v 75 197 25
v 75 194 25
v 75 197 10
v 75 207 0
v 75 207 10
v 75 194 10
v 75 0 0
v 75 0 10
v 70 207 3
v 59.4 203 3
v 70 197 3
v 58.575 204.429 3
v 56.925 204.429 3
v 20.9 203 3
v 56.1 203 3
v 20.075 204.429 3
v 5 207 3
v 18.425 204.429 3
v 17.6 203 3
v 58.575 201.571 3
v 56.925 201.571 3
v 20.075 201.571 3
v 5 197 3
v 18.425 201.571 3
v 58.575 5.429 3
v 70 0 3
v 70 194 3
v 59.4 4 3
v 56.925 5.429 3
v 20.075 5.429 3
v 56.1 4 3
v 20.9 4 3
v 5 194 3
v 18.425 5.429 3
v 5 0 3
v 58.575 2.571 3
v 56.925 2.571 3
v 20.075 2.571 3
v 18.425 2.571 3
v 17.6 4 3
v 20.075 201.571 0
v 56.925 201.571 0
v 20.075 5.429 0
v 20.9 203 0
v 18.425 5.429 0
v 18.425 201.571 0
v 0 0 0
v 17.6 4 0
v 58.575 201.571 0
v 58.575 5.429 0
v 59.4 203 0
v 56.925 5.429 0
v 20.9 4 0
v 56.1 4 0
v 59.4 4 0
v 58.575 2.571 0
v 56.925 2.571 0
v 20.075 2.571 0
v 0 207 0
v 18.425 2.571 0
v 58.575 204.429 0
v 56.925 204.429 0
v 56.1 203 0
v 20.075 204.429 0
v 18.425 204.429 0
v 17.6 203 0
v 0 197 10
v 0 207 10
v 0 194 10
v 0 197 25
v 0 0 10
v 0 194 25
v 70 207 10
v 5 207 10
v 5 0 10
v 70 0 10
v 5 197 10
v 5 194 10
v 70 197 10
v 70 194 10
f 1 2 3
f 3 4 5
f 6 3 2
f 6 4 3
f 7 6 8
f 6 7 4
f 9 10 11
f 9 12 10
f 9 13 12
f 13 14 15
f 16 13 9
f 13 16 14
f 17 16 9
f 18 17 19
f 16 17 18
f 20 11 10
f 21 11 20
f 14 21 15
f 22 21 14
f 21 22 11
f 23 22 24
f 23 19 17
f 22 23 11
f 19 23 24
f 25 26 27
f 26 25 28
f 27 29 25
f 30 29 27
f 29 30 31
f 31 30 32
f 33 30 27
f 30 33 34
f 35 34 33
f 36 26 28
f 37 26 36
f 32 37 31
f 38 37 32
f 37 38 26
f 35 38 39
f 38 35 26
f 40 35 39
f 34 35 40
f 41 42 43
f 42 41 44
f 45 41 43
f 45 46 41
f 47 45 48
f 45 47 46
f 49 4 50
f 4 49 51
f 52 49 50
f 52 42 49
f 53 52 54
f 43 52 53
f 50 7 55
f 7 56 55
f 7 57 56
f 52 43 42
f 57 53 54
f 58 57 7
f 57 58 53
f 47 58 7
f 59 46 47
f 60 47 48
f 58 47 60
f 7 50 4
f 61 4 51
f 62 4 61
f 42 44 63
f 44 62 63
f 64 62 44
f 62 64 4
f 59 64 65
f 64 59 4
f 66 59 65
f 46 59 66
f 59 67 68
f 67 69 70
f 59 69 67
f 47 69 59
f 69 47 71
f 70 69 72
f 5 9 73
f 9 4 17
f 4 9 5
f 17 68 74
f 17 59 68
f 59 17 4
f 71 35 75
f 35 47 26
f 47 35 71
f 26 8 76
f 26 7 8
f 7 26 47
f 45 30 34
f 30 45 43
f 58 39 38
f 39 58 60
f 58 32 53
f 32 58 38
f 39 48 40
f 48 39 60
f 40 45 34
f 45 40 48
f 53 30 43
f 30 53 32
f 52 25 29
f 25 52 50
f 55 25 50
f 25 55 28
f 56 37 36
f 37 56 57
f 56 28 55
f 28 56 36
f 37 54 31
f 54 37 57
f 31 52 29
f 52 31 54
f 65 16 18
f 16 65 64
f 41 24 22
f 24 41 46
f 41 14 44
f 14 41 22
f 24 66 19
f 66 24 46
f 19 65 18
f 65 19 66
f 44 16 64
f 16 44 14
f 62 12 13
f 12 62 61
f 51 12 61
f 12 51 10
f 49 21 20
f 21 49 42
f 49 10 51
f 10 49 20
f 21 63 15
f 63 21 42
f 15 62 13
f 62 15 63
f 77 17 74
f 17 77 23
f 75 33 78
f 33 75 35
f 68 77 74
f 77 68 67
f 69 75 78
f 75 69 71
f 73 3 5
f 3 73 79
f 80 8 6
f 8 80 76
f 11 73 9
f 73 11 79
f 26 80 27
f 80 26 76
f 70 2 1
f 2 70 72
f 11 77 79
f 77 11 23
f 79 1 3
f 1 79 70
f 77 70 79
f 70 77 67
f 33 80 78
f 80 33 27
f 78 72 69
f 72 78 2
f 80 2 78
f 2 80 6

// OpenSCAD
module open_top_box(size, wall=2, lid=false){
    // Form the dimensions of the outer box
    x2 = size[0] + wall*2;
    y2 = size[1] + wall*2;
    z2 = size[2] + wall*2;

    echo("Not building with lid");
    zWall = size[2] + wall*2;
    lid_offset = [wall, wall, wall];

    difference(){
        cube([x2,y2,z2]);
        translate(lid_offset){
            cube([size.x, size.y, zWall]);
        }       
    }
}

hdmi_x = 14;
hdmi_y = 4.5;
hdmi_z = 12;

// Want at lest 2 times the width to support
base_x = 75;

// Want at least 10mm space between them
base_y = hdmi_y*50;
base_z = 2;

offset_x = (base_x - hdmi_x)/2;
center_x = (base_x / 2) - ((hdmi_x + 4) / 2);
z_offset = 2;

/* Prototype base 
//cube([base_x, 40, .5]);

translate([0,14,0]){
    translate([center_x,2,0]){
        open_top_box(size=[hdmi_x, hdmi_y, 10]);
    }
}
/* End prototype base */


/*difference(){

// Define the base
cube([base_x, 207,3]);

    // Top Stabalizer screw hold
    translate([19.25,4,3]){
        rotate([180,0,0]){
            cylinder(4, 1.65, 1.65);
        }
    }


    // Top Stabalizer screw hold
    translate([57.75,4,3]){
        rotate([180,0,0]){
            cylinder(4, 1.65, 1.65);
        }
    }


    // Bottom Stabalizer screw hold
    translate([19.25,203,3]){
        rotate([180,0,0]){
            cylinder(4, 1.65, 1.65);
        }
    }


    // Bottom Stabalizer screw hold
    translate([57.75,203,3]){
        rotate([180,0,0]){
            cylinder(4, 1.65, 1.65);
        }
    }

}

slot_height = 85;
space_between = 35;

mount_y_offset = 25;
y_offset = mount_y_offset-14;

// top Stabalizer
translate([0, 10, 0]){
    cube([75,3,25]);
}


translate([0,mount_y_offset,z_offset]){
    // Mini-PC mount 1
    translate([center_x,2,0]){
        open_top_box(size=[hdmi_x, hdmi_y, hdmi_z], wall=2, lid=false);
    }
    // Mini-PC mount 2
    translate([center_x,2+space_between,0]){
        open_top_box(size=[hdmi_x, hdmi_y, hdmi_z], wall=2, lid=false);
    }
    // Mini-PC mount 3
    translate([center_x,2+space_between*2,0]){
        open_top_box(size=[hdmi_x, hdmi_y, hdmi_z], wall=2, lid=false);
    }

    // Mini-PC mount 4
    translate([center_x,2+space_between*3,0]){
        open_top_box(size=[hdmi_x, hdmi_y, hdmi_z], wall=2, lid=false);
    }

    // Mini-PC mount 5
    translate([center_x,2+space_between*4,0]){
        open_top_box(size=[hdmi_x, hdmi_y, hdmi_z], wall=2, lid=false);
    }
}

// 1st Mount
translate([5,y_offset,z_offset]){
    translate([5,11,0]){
        cube([16,2,slot_height]);
    }
    translate([5,27,0]){
        cube([16,2,slot_height]);
    }
    translate([5,11,0]){
        cube([2,18,slot_height]);
    }
}

// 2nd Mount
translate([5,y_offset+space_between,z_offset]){
    translate([5,11,0]){
        cube([16,2,slot_height]);
    }
    translate([5,27,0]){
        cube([16,2,slot_height]);
    }
    translate([5,11,0]){
        cube([2,18,slot_height]);
    }
}


// 3rd Mount
translate([5,y_offset+space_between*2,z_offset]){
    translate([5,11,0]){
        cube([16,2,slot_height]);
    }
    translate([5,27,0]){
        cube([16,2,slot_height]);
    }
    translate([5,11,0]){
        cube([2,18,slot_height]);
    }
}


// 4th Mount
translate([5,y_offset+space_between*3,z_offset]){
    translate([5,11,0]){
        cube([16,2,slot_height]);
    }
    translate([5,27,0]){
        cube([16,2,slot_height]);
    }
    translate([5,11,0]){
        cube([2,18,slot_height]);
    }
}


// 5th Mount
translate([5,y_offset+space_between*4,z_offset]){
    translate([5,11,0]){
        cube([16,2,slot_height]);
    }
    translate([5,27,0]){
        cube([16,2,slot_height]);
    }
    translate([5,11,0]){
        cube([2,18,slot_height]);
    }
}

// Rails for side-wall mount
cube([5,207,10]);
translate([70,0,0]){
    cube([5,207,10]);
}

// Bottom Stabalizer
translate([0, 194, 0]){
    cube([75,3,25]);
}*/

// Ethernet Side wall

difference(){

// Define the base
cube([base_x, 207,3]);

    // Top Stabalizer screw hold
    translate([19.25,4,3]){
        rotate([180,0,0]){
            cylinder(4, 1.65, 1.65);
        }
    }


    // Top Stabalizer screw hold
    translate([57.75,4,3]){
        rotate([180,0,0]){
            cylinder(4, 1.65, 1.65);
        }
    }


    // Bottom Stabalizer screw hold
    translate([19.25,203,3]){
        rotate([180,0,0]){
            cylinder(4, 1.65, 1.65);
        }
    }


    // Bottom Stabalizer screw hold
    translate([57.75,203,3]){
        rotate([180,0,0]){
            cylinder(4, 1.65, 1.65);
        }
    }

}


// Ethernet side Rails
cube([5,207,10]);
translate([70,0,0]){
    cube([5,207,10]);
}

// Bottom Stabalizer
translate([0, 194, 0]){
    cube([75,3,25]);
}


//
// Base
/*
base_thickness = 10;
base_length = 170;
rotate([90,0,0]){
difference(){
    // Base 
    translate([-5,210,-5]){
        cube([85,base_thickness,base_length]);
    }

    // Bottom Rails
    translate([0,210,0]){
        cube([75.25,base_thickness,3.25]);
    }
    translate([70,210,0]){
        cube([5.25,base_thickness,10.25]);
    }
    translate([0,210,0]){
        cube([5.25,base_thickness,10.25]);
    }

    // Top Rails
    translate([0,210,157]){
        cube([75.25,base_thickness,3.25]);
    }
    translate([70,210,150]){
        cube([5.25,base_thickness,10.25]);
    }
    translate([0,210,150]){
        cube([5.25,base_thickness,10.25]);
    }

    // Cable Gutter Slot
    /*translate([65,210,71+z_offset]){
        cube([5.25,base_thickness,35.3]);
    }

    //Top Rail
    translate([70,210,71+z_offset]){
        cube([5.25,base_thickness,5.25]);
    }

    //Bottom Rail
    translate([70,210,71+z_offset+30+.3]){
        cube([5.15,base_thickness,5.15]);
    }*/

    /* Left Stabalizer screw hold
    translate([19.25,215,0]){
        rotate([180,0,0]){
            cylinder(5, 1.65, 3.375);
        }
    }


    // Left Stabalizer screw hold
    translate([57.75,215,0]){
        rotate([180,0,0]){
            cylinder(5, 1.65, 3.375);
        }
    }

    // Right Stabalizer screw hold
    translate([19.25,215, 165]){
        rotate([180,0,0]){
            cylinder(5, 3.375, 1.65);
        }
    }

    // right Stabalizer screw hold
    translate([57.75,215,165]){
        rotate([180,0,0]){
            cylinder(5, 3.375, 1.65);
        }
    }
}

hold_x = 35;
hold_y = base_thickness + 213;
hold_z = 10.25+20.8;

// Switch holds
translate([hold_x, hold_y-1.8, hold_z]){
    rotate([90,0,0]){
        cylinder(1.8, 2.25, 2.25);
    }
}
translate([hold_x,hold_y,hold_z]){
    rotate([90,0,0]){
        cylinder(1.8, 3.9, 3.9);
    }
}

hold_offset = 102;
// Switch holds
translate([hold_x, hold_y-1.8, hold_z+hold_offset]){
    rotate([90,0,0]){
        cylinder(1.8, 2.25, 2.25);
    }
}
translate([hold_x,hold_y,hold_z+hold_offset]){
    rotate([90,0,0]){
        cylinder(1.8, 3.9, 3.9);
    }
}

}*/



//
// Cable Gutter
/*
difference(){
    translate([65,0,71+z_offset]){
        cube([5,205,35]);
    }

    //Slot 1
    translate([65,10,82.5+z_offset]){
        cube([5,15,10]);
    }

    //Slot 2
    translate([65,45,82.5+z_offset]){
        cube([5,15,10]);
    }

    //Slot 3
    translate([65,80,82.5+z_offset]){
        cube([5,15,10]);
    }

    //Slot 4
    translate([65,115,82.5+z_offset]){
        cube([5,15,10]);
    }

    //Slot 5
    translate([65,150,82.5+z_offset]){
        cube([5,15,10]);
    }


}

//Top Rail
translate([70,0,71+z_offset]){
    cube([5,205,5]);
}

//Bottom Rail
translate([70,0,71+z_offset+30]){
    cube([5,205,5]);
}
*/
